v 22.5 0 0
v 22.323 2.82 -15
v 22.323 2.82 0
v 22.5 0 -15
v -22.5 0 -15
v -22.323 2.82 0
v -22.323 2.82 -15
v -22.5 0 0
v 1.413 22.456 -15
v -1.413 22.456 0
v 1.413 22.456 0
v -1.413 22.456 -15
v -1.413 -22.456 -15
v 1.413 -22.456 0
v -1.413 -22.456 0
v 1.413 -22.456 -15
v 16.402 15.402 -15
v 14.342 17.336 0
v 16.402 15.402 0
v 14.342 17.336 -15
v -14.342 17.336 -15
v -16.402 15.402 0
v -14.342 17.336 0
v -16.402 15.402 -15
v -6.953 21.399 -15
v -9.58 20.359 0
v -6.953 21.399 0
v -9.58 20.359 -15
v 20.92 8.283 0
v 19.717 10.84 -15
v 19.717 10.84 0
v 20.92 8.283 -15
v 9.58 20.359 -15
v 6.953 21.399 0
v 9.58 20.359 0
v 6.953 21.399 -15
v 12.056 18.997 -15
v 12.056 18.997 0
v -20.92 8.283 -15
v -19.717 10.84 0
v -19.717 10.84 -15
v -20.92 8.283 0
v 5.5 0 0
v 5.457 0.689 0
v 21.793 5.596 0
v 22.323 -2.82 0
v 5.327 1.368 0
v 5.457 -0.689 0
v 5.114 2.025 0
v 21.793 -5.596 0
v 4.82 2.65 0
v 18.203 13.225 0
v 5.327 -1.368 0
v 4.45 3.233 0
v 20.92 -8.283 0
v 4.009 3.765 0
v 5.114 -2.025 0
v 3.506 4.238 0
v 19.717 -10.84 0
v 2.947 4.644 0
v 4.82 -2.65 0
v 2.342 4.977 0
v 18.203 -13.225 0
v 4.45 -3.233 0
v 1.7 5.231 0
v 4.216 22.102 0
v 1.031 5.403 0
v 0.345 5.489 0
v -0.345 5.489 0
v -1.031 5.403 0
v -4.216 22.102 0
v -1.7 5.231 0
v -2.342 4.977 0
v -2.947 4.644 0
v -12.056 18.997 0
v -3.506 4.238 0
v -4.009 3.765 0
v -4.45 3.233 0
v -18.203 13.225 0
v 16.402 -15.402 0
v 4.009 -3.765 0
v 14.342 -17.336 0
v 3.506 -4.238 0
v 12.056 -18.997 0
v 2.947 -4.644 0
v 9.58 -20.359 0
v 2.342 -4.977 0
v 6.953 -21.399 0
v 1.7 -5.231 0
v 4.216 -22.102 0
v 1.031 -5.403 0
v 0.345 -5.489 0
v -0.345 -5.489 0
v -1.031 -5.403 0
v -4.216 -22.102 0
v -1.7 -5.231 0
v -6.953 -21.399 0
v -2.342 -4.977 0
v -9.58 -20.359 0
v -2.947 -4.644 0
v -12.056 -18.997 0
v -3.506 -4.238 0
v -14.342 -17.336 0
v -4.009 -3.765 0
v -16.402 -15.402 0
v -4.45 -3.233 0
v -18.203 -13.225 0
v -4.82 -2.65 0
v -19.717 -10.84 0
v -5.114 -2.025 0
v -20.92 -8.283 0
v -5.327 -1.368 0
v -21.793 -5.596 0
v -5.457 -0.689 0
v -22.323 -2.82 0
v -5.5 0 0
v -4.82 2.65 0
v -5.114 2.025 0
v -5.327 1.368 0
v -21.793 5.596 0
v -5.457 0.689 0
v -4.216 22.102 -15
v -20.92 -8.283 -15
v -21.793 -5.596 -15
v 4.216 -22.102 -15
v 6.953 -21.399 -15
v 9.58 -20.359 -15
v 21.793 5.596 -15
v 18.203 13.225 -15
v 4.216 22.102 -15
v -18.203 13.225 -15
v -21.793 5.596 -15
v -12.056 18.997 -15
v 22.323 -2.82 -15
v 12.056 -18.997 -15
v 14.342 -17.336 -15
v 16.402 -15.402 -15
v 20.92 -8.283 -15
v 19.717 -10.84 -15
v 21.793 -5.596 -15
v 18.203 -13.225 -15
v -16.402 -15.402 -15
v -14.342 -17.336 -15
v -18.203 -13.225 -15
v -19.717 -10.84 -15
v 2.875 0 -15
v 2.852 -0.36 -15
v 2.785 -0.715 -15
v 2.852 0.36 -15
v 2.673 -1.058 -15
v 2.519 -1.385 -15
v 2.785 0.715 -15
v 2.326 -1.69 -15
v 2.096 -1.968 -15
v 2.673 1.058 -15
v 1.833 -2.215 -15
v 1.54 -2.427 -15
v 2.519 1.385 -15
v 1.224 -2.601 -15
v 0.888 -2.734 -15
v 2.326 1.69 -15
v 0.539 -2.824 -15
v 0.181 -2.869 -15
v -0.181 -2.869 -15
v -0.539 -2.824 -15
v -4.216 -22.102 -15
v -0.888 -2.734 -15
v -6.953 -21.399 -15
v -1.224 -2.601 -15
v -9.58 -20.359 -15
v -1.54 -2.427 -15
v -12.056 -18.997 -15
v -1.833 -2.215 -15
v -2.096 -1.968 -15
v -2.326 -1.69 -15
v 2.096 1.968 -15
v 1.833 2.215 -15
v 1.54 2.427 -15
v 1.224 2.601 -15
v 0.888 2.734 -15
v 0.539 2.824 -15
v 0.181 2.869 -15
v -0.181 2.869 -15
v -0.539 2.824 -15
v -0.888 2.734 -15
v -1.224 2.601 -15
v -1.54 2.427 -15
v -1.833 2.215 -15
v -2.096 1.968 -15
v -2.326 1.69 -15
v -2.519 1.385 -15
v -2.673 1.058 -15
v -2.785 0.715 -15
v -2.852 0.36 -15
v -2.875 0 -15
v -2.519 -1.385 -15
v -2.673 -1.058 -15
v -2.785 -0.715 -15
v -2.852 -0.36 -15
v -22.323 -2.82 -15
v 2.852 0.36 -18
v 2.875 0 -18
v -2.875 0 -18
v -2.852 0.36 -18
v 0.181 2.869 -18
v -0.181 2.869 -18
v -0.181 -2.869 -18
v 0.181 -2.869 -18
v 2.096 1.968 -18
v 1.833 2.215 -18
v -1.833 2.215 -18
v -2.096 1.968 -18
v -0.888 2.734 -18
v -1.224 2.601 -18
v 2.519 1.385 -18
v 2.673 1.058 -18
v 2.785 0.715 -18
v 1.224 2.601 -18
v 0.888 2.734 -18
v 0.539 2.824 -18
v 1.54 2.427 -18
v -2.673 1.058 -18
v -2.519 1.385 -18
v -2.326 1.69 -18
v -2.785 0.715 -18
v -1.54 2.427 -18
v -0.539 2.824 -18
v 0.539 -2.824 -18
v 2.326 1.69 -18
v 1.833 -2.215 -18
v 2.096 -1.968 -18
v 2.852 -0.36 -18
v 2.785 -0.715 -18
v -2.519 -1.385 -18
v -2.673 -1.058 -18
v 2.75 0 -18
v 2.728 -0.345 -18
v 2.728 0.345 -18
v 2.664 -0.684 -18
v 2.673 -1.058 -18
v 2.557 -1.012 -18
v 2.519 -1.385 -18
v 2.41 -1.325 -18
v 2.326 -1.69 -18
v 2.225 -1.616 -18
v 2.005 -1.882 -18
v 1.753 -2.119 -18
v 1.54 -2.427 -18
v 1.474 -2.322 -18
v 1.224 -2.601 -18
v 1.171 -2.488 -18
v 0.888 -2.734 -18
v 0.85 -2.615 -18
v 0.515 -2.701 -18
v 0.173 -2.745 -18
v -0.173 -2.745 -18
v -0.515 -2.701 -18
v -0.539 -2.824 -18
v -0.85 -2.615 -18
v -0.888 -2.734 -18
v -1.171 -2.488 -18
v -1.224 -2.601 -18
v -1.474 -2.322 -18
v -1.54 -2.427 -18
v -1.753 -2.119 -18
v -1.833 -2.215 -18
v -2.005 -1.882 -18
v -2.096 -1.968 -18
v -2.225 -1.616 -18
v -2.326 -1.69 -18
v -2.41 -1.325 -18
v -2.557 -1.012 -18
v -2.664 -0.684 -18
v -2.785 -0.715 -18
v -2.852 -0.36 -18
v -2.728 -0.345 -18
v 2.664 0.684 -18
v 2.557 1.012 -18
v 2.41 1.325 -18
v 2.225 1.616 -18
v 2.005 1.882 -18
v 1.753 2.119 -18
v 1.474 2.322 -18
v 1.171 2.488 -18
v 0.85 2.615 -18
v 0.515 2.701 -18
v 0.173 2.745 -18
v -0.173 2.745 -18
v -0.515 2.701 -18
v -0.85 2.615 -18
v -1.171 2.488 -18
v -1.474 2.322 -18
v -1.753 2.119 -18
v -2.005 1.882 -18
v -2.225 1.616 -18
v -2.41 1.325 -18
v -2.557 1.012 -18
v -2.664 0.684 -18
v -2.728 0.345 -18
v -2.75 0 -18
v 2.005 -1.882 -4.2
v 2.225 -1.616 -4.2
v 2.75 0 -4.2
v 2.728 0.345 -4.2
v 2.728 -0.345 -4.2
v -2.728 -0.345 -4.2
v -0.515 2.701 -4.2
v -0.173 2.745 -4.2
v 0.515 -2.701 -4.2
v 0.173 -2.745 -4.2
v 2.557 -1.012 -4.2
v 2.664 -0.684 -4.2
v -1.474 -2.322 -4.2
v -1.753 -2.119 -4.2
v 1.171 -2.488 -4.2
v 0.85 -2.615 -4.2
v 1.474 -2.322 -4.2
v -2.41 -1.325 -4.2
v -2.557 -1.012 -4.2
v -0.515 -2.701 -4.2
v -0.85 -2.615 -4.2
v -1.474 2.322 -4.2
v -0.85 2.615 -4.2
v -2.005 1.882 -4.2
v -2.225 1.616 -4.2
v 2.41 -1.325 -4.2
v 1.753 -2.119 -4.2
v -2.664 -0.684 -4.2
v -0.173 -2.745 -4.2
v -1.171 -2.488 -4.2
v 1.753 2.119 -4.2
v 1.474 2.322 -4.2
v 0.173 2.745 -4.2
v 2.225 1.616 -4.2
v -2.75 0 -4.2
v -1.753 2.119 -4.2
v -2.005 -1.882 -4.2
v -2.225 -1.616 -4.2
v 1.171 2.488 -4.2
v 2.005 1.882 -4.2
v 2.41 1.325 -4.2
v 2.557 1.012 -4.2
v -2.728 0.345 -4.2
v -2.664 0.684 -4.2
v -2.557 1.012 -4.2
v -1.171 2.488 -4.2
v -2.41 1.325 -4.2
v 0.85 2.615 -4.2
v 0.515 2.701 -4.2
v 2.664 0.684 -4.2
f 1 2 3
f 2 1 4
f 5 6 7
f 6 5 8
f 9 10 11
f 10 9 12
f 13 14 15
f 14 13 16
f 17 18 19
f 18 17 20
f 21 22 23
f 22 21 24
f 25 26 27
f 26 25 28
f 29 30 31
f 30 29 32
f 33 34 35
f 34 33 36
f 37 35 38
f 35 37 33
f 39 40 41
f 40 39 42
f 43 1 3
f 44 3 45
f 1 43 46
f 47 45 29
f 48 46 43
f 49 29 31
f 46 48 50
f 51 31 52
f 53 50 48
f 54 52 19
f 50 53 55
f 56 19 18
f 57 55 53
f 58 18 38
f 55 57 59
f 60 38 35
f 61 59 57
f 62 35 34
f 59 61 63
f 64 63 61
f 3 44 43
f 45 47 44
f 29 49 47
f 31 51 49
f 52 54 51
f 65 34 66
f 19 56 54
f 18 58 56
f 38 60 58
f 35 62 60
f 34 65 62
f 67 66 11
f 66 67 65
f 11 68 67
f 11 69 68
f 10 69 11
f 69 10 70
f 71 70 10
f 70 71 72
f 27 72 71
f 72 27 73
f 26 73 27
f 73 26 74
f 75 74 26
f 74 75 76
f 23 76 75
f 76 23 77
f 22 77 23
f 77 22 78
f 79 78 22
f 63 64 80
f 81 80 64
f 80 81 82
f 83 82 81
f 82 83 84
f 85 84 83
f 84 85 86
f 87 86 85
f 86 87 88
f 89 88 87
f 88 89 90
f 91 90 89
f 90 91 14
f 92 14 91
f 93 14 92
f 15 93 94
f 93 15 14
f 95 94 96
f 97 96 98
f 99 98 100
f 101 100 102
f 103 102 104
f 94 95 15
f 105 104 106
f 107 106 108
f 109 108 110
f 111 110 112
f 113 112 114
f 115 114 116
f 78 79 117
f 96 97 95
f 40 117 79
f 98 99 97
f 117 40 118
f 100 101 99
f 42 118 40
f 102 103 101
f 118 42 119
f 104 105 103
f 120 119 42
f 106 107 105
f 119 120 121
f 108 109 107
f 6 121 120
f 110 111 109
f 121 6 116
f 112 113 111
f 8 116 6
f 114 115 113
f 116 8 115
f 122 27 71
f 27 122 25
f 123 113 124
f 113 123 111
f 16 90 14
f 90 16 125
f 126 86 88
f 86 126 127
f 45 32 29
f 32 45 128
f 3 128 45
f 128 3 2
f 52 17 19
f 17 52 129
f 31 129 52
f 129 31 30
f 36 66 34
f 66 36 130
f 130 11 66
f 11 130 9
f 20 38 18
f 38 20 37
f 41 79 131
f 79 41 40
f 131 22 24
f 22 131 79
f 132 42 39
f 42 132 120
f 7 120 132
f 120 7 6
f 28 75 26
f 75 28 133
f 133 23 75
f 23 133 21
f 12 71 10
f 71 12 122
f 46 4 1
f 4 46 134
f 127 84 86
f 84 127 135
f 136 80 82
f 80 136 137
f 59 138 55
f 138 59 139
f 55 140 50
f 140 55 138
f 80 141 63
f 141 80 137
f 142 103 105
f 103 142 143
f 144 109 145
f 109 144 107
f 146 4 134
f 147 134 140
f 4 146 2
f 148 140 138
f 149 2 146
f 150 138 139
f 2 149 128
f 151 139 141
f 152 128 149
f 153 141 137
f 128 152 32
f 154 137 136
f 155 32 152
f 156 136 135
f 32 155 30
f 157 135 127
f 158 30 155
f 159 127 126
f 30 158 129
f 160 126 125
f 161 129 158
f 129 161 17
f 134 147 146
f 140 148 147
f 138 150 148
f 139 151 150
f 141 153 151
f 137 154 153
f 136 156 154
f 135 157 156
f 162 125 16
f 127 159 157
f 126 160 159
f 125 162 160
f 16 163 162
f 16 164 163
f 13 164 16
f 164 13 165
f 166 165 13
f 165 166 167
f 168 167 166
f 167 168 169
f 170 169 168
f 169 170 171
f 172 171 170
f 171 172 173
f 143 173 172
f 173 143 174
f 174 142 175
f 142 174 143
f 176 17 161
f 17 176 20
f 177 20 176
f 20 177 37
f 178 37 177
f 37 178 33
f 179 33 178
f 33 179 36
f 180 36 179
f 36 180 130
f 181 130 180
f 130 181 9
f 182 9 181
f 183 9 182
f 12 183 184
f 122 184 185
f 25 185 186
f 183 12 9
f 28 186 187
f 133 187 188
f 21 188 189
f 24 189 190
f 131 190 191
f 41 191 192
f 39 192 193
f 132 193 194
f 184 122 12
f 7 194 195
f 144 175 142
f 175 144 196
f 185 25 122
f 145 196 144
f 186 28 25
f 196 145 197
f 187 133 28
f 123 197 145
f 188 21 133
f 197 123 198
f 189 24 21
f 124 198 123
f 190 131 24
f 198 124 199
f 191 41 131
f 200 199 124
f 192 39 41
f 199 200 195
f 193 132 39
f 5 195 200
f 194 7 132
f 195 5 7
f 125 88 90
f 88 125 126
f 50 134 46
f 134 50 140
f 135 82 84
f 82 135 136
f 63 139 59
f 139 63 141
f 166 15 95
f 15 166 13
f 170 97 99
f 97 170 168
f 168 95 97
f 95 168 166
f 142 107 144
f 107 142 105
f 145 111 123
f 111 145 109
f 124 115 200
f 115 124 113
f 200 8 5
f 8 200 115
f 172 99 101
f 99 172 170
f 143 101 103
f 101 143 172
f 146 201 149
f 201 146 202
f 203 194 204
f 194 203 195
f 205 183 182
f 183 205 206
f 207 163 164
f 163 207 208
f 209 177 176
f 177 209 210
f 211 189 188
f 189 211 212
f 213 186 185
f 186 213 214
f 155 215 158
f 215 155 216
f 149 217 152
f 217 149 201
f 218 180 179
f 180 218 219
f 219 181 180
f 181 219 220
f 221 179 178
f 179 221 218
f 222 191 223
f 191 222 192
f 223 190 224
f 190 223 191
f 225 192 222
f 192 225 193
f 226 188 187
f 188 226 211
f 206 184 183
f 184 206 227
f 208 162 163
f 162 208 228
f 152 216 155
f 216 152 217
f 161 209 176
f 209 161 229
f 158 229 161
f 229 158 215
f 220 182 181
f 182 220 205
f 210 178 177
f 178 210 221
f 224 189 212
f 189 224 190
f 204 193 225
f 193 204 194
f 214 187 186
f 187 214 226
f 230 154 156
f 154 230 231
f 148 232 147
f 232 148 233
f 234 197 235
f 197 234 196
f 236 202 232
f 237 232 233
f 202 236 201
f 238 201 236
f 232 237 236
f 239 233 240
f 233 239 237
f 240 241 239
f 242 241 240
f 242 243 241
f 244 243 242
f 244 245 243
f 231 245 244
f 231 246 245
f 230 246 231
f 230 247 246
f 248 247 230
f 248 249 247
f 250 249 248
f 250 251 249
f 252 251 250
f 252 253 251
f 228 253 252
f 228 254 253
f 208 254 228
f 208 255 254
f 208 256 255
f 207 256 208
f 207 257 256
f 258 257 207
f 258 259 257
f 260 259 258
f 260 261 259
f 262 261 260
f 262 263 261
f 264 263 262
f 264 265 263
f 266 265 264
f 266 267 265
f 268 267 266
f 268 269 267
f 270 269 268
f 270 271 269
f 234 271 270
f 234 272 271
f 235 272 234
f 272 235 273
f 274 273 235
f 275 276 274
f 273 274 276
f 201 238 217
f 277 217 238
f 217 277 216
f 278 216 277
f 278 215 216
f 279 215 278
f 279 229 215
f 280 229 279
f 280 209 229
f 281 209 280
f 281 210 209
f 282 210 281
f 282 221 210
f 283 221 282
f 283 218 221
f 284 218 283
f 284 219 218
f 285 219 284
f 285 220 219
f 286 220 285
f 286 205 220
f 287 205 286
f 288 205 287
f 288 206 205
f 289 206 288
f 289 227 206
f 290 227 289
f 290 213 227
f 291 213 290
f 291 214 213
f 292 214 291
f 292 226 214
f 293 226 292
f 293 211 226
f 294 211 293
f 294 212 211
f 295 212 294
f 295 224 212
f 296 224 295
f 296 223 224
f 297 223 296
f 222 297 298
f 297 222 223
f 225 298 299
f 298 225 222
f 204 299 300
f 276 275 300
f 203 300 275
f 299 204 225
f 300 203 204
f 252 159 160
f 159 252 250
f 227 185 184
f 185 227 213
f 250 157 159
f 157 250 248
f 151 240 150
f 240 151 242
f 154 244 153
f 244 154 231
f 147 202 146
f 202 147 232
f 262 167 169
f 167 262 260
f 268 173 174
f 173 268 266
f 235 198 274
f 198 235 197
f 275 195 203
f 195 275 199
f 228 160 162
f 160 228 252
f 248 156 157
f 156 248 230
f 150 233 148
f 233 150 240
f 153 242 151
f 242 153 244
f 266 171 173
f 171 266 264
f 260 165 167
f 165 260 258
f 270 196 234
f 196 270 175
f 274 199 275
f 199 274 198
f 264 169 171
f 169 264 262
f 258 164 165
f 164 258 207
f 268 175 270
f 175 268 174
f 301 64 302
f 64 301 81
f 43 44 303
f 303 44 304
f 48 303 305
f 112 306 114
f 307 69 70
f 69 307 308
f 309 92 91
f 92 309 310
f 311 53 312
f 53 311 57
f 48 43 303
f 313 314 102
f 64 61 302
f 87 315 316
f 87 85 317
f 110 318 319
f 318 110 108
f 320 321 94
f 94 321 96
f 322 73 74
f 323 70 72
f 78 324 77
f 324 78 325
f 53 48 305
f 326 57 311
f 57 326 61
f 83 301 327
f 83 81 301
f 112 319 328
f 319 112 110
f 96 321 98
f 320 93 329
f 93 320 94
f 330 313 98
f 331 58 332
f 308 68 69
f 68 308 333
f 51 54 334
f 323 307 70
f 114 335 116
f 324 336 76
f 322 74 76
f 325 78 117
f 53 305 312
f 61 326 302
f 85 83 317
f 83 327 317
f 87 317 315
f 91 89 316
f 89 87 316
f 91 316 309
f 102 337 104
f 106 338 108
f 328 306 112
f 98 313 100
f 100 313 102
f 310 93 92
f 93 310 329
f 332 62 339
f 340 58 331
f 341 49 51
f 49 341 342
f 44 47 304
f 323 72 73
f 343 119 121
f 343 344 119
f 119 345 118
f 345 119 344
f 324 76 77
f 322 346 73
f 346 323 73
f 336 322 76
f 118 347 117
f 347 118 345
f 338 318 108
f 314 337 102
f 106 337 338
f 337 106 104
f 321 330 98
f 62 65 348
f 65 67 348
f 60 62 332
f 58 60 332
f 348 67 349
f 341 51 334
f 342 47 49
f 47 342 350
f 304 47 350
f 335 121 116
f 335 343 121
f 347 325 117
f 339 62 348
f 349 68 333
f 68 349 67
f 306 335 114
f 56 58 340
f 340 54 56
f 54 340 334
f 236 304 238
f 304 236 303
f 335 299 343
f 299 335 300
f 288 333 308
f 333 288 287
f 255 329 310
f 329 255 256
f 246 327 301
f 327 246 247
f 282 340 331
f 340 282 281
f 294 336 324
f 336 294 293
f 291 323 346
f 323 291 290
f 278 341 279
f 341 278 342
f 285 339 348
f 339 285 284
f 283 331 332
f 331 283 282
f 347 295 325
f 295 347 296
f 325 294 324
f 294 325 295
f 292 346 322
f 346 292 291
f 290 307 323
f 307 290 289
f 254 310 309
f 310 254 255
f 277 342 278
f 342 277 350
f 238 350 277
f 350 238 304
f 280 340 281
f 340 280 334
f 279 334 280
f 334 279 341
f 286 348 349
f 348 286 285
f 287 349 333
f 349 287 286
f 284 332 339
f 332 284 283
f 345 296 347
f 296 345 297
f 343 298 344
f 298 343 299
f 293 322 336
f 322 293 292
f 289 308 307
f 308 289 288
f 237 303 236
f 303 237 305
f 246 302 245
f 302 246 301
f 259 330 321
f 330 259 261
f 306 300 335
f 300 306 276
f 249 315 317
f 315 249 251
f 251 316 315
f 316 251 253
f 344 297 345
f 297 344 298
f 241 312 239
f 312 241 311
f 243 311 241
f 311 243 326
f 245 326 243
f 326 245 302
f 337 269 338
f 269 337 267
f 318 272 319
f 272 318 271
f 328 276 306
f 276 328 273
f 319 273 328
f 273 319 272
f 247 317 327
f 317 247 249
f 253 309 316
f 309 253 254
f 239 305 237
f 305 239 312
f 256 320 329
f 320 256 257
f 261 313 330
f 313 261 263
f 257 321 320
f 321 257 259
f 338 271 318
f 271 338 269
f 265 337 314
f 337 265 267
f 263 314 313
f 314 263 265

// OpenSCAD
$fn = 50;

difference() {
	union() {
		translate(v = [0, 0, -15.0]) {
			cylinder(h = 15, r = 22.5);
		}
		#translate(v = [0, 0, -18.0]) {
			cylinder(h = 18, r = 2.875);
		}
	}
	union() {
		translate(v = [0, 0, 0]) {
			rotate(a = [0, 0, 0]) {
				difference() {
					union() {
						translate(v = [0, 0, -18.0]) {
							cylinder(h = 18, r = 2.25);
						}
						translate(v = [0, 0, -4.2]) {
							cylinder(h = 4.2, r1 = 2.75, r2 = 5.5);
						}
						translate(v = [0, 0, -18.0]) {
							cylinder(h = 18, r = 2.75);
						}
						translate(v = [0, 0, -18.0]) {
							cylinder(h = 18, r = 2.25);
						}
					}
					union();
				}
			}
		}
	}
}
